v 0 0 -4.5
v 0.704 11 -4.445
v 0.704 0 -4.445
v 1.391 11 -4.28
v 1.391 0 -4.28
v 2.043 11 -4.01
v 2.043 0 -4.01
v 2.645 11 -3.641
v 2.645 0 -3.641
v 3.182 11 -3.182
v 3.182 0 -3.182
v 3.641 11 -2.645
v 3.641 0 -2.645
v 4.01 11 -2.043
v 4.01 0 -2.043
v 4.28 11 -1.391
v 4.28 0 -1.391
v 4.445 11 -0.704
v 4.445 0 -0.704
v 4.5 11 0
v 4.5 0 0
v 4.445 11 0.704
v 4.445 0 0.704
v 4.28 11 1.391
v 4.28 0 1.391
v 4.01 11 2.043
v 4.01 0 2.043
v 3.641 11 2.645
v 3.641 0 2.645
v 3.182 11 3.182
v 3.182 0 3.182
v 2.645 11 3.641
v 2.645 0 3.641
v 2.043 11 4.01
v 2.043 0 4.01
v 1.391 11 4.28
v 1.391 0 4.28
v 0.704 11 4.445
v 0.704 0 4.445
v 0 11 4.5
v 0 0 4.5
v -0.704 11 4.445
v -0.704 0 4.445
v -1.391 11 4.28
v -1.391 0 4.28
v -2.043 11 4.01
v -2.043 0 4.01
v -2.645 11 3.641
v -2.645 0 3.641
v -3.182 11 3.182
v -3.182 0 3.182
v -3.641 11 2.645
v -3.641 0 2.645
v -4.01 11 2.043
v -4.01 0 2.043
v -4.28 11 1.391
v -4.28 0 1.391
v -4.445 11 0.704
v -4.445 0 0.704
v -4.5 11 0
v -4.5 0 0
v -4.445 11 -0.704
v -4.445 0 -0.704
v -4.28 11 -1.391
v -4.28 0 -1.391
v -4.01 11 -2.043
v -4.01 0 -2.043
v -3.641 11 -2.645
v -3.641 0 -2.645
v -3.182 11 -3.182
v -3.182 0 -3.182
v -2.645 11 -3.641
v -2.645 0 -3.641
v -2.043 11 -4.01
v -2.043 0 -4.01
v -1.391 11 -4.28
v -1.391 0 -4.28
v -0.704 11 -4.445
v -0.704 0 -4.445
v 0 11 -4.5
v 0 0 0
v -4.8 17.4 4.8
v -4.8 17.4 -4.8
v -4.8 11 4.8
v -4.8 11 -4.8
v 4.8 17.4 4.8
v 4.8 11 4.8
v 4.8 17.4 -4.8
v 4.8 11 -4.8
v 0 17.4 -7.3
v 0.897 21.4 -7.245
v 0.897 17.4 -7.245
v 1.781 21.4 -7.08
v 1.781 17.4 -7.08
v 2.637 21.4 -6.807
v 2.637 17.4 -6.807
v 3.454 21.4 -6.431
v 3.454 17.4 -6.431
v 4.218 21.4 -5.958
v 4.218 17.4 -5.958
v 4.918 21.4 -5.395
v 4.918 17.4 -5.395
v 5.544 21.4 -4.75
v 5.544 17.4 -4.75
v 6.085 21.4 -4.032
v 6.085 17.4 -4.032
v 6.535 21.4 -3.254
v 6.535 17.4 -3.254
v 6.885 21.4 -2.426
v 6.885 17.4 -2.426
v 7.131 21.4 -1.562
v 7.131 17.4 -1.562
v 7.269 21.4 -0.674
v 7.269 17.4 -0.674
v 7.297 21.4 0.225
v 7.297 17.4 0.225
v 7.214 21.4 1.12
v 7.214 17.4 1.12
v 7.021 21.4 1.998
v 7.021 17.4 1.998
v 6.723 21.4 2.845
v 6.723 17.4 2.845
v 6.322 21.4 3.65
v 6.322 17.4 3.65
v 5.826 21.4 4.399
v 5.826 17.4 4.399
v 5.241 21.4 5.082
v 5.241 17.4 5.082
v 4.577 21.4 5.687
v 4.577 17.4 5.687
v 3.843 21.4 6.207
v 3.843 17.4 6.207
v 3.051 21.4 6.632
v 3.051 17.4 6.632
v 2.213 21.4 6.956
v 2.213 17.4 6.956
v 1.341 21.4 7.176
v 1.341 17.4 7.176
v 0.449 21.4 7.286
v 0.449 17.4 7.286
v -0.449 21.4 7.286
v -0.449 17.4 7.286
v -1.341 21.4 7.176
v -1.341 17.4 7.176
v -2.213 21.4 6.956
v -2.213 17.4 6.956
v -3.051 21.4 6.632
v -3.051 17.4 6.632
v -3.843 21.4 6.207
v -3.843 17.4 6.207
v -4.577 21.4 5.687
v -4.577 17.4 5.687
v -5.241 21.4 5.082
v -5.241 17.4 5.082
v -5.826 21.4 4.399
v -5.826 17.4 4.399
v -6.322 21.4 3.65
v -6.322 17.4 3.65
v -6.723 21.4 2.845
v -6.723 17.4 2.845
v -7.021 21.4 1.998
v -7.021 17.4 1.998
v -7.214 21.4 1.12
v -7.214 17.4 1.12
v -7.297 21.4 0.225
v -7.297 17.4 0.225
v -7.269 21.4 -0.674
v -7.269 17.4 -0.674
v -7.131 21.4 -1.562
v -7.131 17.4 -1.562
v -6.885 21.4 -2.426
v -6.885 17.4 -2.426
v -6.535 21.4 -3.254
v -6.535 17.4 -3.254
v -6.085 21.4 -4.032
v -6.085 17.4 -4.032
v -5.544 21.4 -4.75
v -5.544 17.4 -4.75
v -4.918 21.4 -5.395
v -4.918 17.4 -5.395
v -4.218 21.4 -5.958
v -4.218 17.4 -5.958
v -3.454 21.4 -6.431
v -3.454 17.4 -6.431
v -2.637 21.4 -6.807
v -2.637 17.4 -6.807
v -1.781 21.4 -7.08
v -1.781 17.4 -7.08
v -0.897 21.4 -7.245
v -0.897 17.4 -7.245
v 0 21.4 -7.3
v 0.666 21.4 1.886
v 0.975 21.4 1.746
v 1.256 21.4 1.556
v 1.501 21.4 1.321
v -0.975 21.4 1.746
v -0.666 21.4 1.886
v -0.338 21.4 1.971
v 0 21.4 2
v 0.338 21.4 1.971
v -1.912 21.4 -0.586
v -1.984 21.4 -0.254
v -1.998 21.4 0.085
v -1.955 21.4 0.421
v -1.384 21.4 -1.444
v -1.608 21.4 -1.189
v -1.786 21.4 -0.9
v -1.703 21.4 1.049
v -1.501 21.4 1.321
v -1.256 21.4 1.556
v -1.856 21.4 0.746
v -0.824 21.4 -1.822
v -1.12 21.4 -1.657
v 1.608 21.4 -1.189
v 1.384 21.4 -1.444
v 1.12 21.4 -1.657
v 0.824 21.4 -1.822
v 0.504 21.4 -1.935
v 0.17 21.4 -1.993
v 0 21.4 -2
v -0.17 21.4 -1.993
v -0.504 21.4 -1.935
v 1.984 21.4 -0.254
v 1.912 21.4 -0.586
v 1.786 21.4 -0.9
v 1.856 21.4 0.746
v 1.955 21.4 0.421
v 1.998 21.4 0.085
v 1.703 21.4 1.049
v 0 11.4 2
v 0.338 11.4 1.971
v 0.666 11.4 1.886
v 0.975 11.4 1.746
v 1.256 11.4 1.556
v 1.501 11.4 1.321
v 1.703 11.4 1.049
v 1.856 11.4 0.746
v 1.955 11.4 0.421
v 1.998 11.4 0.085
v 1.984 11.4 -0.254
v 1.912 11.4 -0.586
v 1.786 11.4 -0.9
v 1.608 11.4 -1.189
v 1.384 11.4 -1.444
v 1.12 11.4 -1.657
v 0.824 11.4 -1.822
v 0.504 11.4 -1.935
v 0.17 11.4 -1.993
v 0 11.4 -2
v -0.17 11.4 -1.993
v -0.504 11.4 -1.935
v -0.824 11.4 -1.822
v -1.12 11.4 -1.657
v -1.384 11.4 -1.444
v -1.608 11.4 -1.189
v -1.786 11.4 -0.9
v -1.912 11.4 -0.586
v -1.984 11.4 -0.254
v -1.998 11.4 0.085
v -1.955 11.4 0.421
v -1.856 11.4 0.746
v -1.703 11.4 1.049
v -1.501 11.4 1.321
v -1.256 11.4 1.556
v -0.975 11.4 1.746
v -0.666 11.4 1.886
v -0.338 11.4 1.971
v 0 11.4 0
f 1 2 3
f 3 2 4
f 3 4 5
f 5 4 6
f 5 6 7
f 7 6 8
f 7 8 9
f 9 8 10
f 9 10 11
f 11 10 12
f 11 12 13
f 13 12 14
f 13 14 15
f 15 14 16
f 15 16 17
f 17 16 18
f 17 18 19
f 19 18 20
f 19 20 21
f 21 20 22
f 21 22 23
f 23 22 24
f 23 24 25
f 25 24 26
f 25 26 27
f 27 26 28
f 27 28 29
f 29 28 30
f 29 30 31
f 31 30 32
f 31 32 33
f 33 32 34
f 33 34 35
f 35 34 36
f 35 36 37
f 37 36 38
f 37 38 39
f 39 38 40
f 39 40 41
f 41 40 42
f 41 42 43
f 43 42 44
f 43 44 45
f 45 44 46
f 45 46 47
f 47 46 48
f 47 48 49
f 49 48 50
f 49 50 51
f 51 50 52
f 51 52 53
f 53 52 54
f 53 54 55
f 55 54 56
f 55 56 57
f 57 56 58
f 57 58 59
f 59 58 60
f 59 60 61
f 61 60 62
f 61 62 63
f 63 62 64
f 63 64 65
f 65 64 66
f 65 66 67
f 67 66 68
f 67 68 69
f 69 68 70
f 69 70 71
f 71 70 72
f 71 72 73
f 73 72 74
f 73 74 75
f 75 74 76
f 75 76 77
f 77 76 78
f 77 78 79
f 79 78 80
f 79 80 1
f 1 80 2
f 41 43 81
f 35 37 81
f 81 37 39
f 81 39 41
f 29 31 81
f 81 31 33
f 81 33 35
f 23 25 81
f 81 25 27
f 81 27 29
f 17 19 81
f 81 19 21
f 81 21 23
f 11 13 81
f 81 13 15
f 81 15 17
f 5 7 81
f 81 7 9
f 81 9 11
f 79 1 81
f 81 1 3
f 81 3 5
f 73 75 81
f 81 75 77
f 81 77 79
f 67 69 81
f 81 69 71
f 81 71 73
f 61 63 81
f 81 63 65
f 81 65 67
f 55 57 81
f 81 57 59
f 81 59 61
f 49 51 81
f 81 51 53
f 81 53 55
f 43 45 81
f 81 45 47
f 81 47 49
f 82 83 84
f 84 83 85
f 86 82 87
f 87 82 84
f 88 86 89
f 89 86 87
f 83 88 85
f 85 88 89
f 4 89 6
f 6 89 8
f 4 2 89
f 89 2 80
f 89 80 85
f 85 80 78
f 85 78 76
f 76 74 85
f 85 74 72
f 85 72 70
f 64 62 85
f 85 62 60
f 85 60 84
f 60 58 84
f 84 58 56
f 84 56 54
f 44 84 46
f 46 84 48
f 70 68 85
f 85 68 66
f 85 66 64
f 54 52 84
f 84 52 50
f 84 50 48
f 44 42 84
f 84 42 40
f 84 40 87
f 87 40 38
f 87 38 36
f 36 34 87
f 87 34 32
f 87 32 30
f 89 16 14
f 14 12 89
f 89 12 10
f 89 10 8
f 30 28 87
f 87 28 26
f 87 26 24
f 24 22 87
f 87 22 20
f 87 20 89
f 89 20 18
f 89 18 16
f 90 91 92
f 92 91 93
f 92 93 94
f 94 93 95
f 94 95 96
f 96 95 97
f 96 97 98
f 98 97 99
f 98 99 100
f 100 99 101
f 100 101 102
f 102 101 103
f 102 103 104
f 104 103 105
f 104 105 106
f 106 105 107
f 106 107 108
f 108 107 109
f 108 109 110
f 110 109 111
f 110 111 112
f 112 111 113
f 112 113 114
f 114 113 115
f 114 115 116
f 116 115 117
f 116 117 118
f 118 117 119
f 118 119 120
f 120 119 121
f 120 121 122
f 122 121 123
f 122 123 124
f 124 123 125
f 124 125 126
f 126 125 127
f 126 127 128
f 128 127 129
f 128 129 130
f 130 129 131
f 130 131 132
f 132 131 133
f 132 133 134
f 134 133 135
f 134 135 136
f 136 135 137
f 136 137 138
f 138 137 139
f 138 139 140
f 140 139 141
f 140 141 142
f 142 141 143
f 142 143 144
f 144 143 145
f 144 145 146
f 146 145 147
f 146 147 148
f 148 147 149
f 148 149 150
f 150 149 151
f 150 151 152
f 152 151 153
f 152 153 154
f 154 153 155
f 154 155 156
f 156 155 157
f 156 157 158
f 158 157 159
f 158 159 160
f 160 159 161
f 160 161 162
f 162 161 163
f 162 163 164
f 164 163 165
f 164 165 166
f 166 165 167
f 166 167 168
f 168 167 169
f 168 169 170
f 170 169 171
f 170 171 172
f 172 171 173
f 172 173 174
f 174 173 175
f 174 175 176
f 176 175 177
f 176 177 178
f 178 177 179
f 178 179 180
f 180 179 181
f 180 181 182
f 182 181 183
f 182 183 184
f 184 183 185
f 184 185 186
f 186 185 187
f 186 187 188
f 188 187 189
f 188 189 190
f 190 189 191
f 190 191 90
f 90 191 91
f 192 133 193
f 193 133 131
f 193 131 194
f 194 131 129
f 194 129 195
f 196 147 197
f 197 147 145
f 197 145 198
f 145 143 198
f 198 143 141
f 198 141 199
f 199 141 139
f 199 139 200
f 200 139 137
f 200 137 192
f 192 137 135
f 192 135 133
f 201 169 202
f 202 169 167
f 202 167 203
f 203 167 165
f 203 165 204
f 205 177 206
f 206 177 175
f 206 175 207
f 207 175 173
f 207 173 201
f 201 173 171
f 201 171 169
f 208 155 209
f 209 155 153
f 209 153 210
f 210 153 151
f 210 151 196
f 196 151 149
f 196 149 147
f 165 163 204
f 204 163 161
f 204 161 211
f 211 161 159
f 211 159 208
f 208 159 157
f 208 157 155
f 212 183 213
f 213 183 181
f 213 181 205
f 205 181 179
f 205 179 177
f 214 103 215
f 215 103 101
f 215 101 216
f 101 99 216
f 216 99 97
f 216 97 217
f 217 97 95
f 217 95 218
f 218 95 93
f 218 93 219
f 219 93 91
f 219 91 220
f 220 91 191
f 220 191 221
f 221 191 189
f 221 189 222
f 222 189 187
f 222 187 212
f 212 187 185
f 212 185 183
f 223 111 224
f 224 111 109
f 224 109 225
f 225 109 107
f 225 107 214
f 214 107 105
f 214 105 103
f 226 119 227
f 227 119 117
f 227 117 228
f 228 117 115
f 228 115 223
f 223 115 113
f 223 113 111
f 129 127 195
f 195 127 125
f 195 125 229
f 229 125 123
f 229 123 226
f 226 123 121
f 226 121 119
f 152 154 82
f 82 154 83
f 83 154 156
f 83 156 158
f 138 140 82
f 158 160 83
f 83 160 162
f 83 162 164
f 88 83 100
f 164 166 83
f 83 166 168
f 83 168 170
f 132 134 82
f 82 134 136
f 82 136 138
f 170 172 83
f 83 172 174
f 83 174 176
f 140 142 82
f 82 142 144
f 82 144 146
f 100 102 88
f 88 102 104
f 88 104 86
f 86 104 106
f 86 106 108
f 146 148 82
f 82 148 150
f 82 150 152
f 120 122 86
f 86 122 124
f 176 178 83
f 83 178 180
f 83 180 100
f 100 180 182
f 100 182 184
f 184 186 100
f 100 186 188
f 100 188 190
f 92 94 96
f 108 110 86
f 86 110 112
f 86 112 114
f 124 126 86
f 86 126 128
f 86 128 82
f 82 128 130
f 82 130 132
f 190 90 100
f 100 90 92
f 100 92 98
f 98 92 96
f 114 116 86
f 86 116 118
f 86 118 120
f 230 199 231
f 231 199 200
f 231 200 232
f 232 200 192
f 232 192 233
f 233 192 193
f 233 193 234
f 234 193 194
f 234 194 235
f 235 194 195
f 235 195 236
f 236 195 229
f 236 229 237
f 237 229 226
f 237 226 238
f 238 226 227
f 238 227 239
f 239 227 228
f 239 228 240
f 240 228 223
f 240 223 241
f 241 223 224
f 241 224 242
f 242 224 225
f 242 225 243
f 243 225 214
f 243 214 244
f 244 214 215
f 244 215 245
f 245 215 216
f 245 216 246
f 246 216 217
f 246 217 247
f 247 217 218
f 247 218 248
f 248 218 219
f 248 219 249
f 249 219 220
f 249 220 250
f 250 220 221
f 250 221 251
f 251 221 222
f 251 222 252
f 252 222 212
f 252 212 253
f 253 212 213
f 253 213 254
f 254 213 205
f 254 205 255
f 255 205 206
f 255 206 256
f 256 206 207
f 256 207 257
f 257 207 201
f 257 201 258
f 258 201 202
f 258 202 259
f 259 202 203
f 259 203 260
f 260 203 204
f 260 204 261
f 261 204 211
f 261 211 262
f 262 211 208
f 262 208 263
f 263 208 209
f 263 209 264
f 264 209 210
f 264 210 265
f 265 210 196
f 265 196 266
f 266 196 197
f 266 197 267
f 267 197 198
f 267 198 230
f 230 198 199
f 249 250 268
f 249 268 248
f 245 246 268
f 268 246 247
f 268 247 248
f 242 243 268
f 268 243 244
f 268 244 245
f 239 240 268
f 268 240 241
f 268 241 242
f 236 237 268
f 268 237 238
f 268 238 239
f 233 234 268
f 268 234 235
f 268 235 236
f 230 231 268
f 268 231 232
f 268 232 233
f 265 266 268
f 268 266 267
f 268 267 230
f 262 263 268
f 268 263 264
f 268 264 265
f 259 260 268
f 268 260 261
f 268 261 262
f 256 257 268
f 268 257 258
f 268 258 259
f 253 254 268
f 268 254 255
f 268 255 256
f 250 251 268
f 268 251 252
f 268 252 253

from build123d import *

# Parameters (mm, degrees)
SKETCH1_R           = 4.5
SKETCH1_R_2         = 2
BOSS_EXTRUDE1_DEPTH = 11
BOSS_EXTRUDE2_START = 11
SKETCH1_3_W         = 9.6
SKETCH1_3_H         = 9.6
SKETCH1_3_R         = 4.5
SKETCH1_3_R_2       = 2
BOSS_EXTRUDE2_DEPTH = 6.4
BOSS_EXTRUDE3_START = 17.4
SKETCH1_4_R         = 7.3
SKETCH1_4_W         = 9.6
SKETCH1_4_H         = 9.6
SKETCH1_4_R_2       = 4.5
SKETCH1_4_R_3       = 2
BOSS_EXTRUDE3_DEPTH = 4
CUT_EXTRUDE1_START  = 21.4
SKETCH1_5_R         = 2
CUT_EXTRUDE1_DEPTH  = 10


with BuildPart() as part:
    # Sketch1 → Boss-Extrude1 (new body)
    with BuildSketch(Plane(origin=(0, 0, 0), x_dir=(1, 0, 0), z_dir=(0, 1, 0))):
        Circle(SKETCH1_R)
        Circle(SKETCH1_R_2, mode=Mode.SUBTRACT)
        Circle(SKETCH1_R_2)
    extrude(amount=BOSS_EXTRUDE1_DEPTH)

    # Sketch1<3> → Boss-Extrude2 (add)
    with BuildSketch(Plane(origin=(0, 0, 0), x_dir=(1, 0, 0), z_dir=(0, 1, 0)).offset(BOSS_EXTRUDE2_START)):
        Rectangle(SKETCH1_3_W, SKETCH1_3_H)
        Circle(SKETCH1_3_R, mode=Mode.SUBTRACT)
        Circle(SKETCH1_3_R)
        Circle(SKETCH1_3_R_2, mode=Mode.SUBTRACT)
        Circle(SKETCH1_3_R_2)
    extrude(amount=BOSS_EXTRUDE2_DEPTH)

    # Sketch1<4> → Boss-Extrude3 (add)
    with BuildSketch(Plane(origin=(0, 0, 0), x_dir=(1, 0, 0), z_dir=(0, 1, 0)).offset(BOSS_EXTRUDE3_START)):
        Circle(SKETCH1_4_R)
        Rectangle(SKETCH1_4_W, SKETCH1_4_H, mode=Mode.SUBTRACT)
        Rectangle(SKETCH1_4_W, SKETCH1_4_H)
        Circle(SKETCH1_4_R_2, mode=Mode.SUBTRACT)
        Circle(SKETCH1_4_R_2)
        Circle(SKETCH1_4_R_3, mode=Mode.SUBTRACT)
        Circle(SKETCH1_4_R_3)
    extrude(amount=BOSS_EXTRUDE3_DEPTH)

    # Sketch1<5> → Cut-Extrude1 (cut)
    with BuildSketch(Plane(origin=(0, 0, 0), x_dir=(1, 0, 0), z_dir=(0, 1, 0)).offset(CUT_EXTRUDE1_START)):
        Circle(SKETCH1_5_R)
    extrude(amount=-CUT_EXTRUDE1_DEPTH, mode=Mode.SUBTRACT)


solid = part.part
